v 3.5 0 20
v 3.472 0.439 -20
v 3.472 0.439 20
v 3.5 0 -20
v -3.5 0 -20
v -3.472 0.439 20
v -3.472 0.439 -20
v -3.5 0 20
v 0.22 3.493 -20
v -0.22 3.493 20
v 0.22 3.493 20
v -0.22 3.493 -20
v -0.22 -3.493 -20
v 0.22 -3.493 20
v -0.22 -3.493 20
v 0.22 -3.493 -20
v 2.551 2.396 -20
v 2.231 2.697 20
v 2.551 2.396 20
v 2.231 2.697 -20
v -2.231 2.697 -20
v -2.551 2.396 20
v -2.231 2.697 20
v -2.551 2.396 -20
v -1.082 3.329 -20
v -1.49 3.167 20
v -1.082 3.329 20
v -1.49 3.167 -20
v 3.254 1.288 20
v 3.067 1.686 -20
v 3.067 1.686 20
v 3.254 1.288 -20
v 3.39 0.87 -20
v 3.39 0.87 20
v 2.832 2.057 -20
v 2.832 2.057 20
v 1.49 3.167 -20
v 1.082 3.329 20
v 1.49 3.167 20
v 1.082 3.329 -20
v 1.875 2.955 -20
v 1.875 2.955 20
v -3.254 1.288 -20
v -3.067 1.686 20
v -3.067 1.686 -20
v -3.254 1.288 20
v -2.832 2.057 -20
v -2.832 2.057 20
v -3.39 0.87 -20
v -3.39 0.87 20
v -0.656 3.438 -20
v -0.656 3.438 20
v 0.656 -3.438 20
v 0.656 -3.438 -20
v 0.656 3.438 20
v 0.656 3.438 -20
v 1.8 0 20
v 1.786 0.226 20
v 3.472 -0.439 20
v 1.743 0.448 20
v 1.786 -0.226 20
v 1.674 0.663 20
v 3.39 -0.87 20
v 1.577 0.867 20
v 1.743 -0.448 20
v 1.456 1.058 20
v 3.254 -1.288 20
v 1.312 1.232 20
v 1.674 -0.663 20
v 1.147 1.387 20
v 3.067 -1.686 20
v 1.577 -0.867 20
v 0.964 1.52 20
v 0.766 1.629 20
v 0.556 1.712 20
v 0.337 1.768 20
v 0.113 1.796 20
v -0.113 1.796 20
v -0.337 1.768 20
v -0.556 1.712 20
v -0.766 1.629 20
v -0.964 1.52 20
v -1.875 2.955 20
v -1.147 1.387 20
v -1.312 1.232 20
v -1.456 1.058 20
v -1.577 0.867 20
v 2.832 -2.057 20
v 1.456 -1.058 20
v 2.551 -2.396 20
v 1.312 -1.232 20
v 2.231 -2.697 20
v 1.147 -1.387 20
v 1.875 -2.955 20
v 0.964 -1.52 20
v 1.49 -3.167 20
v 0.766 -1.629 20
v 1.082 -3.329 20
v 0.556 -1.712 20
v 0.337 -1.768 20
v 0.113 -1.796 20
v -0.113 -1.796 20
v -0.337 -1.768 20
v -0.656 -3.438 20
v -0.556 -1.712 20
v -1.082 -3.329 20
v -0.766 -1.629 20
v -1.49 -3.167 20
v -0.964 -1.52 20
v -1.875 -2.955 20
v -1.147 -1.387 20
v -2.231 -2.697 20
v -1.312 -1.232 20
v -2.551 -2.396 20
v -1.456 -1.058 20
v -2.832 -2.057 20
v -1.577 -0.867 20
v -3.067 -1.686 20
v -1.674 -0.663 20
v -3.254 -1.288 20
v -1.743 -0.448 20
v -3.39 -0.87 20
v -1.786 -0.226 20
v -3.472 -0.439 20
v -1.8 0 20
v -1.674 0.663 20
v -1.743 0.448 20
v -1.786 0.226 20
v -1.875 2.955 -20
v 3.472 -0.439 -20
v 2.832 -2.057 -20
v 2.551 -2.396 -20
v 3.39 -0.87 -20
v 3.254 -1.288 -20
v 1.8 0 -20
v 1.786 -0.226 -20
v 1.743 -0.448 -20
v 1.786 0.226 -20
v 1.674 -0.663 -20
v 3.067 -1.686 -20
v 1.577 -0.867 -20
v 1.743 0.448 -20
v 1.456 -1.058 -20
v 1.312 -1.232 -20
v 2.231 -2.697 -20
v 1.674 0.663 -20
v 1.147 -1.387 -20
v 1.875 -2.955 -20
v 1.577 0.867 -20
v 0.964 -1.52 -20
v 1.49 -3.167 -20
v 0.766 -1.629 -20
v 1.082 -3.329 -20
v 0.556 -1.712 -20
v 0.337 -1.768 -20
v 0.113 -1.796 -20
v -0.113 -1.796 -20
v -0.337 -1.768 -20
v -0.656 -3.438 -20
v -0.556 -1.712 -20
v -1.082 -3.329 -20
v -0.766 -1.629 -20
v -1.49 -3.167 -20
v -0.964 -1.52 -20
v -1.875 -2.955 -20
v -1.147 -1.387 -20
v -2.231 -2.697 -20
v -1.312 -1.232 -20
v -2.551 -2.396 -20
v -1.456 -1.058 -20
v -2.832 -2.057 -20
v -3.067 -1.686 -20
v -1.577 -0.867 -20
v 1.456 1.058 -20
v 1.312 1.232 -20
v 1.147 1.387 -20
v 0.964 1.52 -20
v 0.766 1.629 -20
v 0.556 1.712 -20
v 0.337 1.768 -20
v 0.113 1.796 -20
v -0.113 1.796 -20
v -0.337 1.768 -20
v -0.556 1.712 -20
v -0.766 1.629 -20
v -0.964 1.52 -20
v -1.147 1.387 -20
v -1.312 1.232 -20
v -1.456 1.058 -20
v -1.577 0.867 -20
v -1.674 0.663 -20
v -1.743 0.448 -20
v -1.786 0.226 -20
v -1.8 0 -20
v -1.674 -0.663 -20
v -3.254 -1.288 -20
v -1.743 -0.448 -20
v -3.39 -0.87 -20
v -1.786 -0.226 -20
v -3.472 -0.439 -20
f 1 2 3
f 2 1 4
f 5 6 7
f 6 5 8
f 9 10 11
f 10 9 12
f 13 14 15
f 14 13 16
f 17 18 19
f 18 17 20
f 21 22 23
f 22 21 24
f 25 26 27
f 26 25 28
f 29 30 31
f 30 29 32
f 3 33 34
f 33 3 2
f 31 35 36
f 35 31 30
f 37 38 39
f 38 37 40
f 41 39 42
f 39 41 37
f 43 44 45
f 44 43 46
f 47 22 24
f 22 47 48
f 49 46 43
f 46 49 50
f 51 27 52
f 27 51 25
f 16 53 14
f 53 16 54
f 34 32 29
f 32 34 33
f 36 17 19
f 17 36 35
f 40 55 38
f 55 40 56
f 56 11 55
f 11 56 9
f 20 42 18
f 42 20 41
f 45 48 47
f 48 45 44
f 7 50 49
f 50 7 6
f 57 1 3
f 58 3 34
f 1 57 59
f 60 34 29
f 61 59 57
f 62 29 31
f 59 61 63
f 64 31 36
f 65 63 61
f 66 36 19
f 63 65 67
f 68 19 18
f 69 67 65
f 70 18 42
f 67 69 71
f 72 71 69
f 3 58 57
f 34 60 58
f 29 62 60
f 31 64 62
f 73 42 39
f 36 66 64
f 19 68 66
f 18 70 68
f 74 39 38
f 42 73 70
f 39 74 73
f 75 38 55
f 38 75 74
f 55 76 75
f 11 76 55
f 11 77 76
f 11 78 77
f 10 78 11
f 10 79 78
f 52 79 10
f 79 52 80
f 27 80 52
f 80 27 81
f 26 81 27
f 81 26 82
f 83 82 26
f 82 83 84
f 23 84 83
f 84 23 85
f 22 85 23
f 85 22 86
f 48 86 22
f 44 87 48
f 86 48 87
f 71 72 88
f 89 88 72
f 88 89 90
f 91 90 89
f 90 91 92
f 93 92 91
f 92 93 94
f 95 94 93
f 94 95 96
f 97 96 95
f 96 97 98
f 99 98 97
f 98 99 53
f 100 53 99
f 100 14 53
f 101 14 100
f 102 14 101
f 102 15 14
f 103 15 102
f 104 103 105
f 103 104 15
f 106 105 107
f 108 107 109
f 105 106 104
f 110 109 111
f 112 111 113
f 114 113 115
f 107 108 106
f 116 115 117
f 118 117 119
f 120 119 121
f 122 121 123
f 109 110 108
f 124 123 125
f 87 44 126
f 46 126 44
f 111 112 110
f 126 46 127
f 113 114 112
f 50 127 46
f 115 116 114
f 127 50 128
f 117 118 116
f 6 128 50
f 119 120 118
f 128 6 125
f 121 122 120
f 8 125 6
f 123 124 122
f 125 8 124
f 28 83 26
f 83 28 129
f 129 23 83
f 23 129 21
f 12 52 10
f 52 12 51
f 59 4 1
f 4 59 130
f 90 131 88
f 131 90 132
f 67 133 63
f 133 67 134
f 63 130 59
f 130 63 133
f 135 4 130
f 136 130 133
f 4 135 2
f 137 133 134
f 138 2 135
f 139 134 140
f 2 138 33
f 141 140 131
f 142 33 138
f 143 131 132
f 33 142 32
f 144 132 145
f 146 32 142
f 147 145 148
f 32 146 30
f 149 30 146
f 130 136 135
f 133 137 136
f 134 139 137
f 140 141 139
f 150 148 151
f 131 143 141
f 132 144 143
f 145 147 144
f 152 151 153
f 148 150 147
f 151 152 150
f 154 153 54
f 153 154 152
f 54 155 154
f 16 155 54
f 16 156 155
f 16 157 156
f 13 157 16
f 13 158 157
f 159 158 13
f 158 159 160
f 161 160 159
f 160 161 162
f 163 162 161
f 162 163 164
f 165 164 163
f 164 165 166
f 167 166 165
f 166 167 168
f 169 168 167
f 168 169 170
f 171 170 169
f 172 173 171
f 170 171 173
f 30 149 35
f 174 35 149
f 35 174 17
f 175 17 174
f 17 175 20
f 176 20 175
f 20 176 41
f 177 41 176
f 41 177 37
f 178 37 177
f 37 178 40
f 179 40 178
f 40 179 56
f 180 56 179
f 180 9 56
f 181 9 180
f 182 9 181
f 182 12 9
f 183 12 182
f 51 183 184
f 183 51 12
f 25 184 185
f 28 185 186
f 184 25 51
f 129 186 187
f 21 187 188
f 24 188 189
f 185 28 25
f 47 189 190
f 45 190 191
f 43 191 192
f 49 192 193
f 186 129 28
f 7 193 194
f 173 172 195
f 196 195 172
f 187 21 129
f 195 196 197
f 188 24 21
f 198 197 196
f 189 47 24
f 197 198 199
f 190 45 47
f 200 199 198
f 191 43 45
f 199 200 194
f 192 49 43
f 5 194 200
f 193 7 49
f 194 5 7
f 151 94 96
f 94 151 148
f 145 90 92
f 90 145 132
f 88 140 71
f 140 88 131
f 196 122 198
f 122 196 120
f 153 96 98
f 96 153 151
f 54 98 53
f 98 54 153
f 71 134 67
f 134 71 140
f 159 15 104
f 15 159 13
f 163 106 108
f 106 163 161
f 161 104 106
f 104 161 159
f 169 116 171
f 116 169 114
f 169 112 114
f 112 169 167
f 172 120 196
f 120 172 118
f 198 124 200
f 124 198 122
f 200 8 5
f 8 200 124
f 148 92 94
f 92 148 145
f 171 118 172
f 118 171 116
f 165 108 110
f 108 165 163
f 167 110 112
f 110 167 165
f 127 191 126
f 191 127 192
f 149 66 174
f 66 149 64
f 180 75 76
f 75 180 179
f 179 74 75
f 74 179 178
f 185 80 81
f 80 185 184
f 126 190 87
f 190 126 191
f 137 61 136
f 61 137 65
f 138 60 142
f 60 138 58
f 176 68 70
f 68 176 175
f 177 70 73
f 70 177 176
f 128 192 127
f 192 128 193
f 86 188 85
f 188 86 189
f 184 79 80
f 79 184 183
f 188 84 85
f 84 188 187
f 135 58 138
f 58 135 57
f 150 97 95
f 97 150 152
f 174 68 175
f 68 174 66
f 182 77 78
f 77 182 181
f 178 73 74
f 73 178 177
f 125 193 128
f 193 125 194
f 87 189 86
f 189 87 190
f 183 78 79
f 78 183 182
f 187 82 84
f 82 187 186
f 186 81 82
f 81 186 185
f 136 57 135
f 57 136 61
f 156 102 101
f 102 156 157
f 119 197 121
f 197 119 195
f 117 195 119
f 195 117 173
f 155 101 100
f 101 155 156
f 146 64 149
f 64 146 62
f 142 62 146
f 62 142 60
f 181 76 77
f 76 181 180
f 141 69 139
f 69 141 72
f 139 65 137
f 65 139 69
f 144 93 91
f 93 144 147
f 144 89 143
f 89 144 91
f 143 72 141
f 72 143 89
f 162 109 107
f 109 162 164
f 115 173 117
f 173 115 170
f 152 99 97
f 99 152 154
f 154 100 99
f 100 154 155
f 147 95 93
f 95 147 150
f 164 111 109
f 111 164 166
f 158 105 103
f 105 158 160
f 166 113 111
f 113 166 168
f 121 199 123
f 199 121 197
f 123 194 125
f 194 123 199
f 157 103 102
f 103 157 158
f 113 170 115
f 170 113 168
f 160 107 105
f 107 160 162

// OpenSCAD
$fn = 50;


difference() {
	union() {
		translate(v = [0, 0, -20.0000000000]) {
			cylinder(h = 40, r = 3.5000000000);
		}
	}
	union() {
		translate(v = [0, 0, -100.0000000000]) {
			cylinder(h = 200, r = 1.8000000000);
		}
	}
}
